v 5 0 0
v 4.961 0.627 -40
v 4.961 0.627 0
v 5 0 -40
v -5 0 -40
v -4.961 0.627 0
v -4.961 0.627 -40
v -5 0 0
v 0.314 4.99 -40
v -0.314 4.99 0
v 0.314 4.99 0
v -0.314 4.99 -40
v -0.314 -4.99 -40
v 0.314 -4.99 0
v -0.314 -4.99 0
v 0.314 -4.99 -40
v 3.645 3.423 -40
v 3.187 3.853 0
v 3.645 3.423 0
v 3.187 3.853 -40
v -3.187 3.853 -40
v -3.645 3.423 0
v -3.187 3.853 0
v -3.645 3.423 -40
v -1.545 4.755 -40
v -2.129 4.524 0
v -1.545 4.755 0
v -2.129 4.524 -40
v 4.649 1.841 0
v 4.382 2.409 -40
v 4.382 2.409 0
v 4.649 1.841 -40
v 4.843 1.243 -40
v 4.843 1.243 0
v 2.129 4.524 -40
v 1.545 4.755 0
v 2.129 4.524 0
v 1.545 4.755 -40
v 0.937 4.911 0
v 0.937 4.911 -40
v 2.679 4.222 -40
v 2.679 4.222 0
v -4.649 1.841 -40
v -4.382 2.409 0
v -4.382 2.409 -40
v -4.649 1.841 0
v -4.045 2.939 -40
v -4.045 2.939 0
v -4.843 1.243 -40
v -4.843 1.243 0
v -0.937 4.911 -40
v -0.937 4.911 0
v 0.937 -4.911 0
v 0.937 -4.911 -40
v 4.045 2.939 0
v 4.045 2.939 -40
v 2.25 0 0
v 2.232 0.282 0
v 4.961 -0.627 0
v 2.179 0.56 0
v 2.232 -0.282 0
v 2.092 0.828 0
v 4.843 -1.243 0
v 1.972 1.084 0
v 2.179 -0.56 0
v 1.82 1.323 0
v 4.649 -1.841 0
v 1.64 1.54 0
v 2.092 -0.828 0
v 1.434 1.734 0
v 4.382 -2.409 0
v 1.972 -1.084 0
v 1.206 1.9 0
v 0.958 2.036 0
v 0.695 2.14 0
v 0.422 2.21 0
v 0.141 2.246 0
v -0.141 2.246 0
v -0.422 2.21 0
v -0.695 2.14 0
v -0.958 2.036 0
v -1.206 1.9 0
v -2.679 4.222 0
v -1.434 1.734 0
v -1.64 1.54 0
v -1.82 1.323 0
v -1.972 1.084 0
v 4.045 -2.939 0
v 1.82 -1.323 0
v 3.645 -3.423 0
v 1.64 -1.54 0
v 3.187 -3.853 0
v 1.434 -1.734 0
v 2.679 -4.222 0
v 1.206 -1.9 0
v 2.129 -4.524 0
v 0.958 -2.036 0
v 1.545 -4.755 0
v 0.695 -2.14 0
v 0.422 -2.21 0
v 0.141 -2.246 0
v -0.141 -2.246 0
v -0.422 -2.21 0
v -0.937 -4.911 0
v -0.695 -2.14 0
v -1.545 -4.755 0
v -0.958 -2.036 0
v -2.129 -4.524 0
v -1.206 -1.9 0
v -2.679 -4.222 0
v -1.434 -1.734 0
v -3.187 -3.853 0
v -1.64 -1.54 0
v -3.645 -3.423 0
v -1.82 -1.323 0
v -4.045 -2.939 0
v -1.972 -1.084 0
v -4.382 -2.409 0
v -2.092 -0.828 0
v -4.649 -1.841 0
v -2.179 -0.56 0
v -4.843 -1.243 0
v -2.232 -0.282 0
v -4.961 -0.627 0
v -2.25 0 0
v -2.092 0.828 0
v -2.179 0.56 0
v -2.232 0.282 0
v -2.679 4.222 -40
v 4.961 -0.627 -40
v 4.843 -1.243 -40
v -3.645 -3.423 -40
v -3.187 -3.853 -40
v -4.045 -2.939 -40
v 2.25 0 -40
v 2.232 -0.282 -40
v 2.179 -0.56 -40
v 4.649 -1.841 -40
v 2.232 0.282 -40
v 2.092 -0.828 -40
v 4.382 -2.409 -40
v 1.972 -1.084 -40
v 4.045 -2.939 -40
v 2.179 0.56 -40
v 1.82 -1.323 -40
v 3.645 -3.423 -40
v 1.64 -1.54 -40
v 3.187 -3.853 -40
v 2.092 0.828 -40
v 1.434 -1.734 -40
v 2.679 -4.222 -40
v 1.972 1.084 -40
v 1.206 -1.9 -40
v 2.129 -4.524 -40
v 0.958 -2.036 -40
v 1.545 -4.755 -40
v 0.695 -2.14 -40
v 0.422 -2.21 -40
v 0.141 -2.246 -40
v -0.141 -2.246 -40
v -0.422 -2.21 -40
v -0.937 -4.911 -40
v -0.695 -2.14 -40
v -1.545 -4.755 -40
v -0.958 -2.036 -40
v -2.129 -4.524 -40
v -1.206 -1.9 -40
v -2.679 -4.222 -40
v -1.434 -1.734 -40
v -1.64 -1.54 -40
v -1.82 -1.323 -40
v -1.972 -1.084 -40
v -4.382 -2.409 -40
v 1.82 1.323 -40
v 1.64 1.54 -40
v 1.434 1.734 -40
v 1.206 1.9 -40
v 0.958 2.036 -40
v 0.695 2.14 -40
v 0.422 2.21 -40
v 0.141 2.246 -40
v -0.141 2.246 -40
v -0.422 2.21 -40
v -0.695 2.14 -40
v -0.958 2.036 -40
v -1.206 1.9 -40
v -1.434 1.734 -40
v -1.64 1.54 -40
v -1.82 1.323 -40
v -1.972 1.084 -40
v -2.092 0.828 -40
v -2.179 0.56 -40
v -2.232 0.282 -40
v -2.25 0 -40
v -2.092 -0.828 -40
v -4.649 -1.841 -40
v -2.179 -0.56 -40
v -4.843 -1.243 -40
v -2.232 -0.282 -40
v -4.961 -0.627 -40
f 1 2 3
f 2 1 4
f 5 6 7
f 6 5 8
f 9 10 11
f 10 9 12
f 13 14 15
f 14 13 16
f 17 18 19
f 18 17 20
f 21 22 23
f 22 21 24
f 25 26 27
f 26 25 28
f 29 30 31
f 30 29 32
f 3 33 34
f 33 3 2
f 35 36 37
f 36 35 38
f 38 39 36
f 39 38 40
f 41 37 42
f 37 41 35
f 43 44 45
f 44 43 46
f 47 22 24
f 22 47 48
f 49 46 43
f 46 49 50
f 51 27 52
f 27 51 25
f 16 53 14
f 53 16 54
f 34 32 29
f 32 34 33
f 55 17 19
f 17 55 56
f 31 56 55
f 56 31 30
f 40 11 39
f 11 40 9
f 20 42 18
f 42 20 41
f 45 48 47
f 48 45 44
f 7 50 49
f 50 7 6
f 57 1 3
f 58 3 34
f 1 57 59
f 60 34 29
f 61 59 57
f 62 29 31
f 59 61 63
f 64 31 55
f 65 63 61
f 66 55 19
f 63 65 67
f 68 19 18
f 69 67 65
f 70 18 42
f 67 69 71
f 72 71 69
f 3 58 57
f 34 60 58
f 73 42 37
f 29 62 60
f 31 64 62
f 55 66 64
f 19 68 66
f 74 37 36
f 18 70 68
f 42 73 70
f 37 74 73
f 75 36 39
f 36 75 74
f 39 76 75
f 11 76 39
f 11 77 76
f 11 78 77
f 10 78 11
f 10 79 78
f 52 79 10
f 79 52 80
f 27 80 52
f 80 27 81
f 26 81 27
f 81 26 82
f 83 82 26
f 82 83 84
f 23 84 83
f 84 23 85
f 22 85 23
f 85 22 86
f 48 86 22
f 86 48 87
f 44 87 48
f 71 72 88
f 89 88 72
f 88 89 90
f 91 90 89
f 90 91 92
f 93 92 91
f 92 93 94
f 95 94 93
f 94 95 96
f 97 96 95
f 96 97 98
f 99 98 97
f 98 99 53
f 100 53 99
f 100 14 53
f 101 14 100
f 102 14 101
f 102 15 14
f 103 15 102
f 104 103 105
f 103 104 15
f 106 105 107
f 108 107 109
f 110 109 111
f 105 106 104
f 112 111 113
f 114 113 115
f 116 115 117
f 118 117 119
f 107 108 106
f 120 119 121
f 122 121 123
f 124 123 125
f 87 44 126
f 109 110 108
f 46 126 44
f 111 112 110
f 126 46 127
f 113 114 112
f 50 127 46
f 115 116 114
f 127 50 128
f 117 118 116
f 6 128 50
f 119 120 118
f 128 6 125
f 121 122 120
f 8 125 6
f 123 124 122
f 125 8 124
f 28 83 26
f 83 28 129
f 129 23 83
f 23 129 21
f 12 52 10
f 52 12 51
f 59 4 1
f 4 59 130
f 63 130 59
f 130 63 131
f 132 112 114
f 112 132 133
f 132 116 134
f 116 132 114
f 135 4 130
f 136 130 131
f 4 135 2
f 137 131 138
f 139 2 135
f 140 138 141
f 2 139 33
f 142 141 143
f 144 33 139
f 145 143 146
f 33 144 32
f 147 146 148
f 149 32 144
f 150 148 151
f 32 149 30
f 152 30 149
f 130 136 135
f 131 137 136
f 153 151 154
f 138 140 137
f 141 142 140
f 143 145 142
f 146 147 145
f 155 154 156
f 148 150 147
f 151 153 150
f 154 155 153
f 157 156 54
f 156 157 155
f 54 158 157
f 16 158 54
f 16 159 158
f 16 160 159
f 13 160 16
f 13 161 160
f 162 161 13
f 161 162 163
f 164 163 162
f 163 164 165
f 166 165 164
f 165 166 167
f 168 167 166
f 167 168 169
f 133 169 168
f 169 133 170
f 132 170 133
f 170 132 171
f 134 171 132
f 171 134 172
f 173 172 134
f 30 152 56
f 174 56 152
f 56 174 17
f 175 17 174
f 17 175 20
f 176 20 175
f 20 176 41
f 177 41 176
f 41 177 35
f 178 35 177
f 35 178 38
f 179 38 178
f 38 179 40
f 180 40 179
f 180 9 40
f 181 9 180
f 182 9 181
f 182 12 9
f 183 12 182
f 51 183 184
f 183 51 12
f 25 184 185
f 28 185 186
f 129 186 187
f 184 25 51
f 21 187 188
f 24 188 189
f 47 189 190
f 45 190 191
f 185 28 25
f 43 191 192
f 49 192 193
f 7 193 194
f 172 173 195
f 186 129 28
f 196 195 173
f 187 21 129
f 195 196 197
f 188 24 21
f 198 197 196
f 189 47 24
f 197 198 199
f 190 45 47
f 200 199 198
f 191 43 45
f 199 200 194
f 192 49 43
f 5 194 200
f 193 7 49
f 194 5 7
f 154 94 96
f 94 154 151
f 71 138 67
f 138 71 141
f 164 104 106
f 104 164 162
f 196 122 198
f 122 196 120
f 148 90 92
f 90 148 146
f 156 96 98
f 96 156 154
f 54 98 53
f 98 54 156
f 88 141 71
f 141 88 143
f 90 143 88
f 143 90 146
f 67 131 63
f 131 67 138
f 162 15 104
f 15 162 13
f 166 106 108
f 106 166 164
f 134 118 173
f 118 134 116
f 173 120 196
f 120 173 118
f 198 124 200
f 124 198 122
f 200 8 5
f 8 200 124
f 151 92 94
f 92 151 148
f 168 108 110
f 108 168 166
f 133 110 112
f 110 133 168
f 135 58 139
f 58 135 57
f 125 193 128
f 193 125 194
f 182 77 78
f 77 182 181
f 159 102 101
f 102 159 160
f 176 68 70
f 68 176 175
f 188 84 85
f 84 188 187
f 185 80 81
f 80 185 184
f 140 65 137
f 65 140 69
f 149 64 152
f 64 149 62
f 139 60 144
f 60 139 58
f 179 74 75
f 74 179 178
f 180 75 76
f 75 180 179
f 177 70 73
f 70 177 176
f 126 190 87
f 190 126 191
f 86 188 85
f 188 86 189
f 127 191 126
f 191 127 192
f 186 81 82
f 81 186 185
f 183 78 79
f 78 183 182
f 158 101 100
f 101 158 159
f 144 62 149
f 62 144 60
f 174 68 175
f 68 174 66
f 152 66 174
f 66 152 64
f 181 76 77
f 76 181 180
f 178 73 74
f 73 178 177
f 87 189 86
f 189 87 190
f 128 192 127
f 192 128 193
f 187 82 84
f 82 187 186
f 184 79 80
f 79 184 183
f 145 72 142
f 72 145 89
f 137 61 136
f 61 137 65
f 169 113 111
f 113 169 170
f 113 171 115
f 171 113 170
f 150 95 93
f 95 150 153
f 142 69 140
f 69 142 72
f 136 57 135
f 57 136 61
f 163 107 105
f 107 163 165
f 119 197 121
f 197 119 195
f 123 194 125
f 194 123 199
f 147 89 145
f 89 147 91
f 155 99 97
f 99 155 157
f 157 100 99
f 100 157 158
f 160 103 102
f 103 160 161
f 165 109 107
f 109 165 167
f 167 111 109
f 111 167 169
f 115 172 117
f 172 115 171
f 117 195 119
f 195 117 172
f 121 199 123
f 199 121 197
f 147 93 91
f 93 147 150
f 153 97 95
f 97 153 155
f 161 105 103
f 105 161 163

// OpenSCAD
$fn = 50;


difference() {
	union() {
		translate(v = [0, 0, -40.0000000000]) {
			cylinder(h = 40, r = 5.0000000000);
		}
		cylinder(h = 0, r = 8.0000000000);
	}
	union() {
		#translate(v = [0, 0, -40]) {
			cylinder(h = 40, r = 2.2500000000);
		}
	}
}
